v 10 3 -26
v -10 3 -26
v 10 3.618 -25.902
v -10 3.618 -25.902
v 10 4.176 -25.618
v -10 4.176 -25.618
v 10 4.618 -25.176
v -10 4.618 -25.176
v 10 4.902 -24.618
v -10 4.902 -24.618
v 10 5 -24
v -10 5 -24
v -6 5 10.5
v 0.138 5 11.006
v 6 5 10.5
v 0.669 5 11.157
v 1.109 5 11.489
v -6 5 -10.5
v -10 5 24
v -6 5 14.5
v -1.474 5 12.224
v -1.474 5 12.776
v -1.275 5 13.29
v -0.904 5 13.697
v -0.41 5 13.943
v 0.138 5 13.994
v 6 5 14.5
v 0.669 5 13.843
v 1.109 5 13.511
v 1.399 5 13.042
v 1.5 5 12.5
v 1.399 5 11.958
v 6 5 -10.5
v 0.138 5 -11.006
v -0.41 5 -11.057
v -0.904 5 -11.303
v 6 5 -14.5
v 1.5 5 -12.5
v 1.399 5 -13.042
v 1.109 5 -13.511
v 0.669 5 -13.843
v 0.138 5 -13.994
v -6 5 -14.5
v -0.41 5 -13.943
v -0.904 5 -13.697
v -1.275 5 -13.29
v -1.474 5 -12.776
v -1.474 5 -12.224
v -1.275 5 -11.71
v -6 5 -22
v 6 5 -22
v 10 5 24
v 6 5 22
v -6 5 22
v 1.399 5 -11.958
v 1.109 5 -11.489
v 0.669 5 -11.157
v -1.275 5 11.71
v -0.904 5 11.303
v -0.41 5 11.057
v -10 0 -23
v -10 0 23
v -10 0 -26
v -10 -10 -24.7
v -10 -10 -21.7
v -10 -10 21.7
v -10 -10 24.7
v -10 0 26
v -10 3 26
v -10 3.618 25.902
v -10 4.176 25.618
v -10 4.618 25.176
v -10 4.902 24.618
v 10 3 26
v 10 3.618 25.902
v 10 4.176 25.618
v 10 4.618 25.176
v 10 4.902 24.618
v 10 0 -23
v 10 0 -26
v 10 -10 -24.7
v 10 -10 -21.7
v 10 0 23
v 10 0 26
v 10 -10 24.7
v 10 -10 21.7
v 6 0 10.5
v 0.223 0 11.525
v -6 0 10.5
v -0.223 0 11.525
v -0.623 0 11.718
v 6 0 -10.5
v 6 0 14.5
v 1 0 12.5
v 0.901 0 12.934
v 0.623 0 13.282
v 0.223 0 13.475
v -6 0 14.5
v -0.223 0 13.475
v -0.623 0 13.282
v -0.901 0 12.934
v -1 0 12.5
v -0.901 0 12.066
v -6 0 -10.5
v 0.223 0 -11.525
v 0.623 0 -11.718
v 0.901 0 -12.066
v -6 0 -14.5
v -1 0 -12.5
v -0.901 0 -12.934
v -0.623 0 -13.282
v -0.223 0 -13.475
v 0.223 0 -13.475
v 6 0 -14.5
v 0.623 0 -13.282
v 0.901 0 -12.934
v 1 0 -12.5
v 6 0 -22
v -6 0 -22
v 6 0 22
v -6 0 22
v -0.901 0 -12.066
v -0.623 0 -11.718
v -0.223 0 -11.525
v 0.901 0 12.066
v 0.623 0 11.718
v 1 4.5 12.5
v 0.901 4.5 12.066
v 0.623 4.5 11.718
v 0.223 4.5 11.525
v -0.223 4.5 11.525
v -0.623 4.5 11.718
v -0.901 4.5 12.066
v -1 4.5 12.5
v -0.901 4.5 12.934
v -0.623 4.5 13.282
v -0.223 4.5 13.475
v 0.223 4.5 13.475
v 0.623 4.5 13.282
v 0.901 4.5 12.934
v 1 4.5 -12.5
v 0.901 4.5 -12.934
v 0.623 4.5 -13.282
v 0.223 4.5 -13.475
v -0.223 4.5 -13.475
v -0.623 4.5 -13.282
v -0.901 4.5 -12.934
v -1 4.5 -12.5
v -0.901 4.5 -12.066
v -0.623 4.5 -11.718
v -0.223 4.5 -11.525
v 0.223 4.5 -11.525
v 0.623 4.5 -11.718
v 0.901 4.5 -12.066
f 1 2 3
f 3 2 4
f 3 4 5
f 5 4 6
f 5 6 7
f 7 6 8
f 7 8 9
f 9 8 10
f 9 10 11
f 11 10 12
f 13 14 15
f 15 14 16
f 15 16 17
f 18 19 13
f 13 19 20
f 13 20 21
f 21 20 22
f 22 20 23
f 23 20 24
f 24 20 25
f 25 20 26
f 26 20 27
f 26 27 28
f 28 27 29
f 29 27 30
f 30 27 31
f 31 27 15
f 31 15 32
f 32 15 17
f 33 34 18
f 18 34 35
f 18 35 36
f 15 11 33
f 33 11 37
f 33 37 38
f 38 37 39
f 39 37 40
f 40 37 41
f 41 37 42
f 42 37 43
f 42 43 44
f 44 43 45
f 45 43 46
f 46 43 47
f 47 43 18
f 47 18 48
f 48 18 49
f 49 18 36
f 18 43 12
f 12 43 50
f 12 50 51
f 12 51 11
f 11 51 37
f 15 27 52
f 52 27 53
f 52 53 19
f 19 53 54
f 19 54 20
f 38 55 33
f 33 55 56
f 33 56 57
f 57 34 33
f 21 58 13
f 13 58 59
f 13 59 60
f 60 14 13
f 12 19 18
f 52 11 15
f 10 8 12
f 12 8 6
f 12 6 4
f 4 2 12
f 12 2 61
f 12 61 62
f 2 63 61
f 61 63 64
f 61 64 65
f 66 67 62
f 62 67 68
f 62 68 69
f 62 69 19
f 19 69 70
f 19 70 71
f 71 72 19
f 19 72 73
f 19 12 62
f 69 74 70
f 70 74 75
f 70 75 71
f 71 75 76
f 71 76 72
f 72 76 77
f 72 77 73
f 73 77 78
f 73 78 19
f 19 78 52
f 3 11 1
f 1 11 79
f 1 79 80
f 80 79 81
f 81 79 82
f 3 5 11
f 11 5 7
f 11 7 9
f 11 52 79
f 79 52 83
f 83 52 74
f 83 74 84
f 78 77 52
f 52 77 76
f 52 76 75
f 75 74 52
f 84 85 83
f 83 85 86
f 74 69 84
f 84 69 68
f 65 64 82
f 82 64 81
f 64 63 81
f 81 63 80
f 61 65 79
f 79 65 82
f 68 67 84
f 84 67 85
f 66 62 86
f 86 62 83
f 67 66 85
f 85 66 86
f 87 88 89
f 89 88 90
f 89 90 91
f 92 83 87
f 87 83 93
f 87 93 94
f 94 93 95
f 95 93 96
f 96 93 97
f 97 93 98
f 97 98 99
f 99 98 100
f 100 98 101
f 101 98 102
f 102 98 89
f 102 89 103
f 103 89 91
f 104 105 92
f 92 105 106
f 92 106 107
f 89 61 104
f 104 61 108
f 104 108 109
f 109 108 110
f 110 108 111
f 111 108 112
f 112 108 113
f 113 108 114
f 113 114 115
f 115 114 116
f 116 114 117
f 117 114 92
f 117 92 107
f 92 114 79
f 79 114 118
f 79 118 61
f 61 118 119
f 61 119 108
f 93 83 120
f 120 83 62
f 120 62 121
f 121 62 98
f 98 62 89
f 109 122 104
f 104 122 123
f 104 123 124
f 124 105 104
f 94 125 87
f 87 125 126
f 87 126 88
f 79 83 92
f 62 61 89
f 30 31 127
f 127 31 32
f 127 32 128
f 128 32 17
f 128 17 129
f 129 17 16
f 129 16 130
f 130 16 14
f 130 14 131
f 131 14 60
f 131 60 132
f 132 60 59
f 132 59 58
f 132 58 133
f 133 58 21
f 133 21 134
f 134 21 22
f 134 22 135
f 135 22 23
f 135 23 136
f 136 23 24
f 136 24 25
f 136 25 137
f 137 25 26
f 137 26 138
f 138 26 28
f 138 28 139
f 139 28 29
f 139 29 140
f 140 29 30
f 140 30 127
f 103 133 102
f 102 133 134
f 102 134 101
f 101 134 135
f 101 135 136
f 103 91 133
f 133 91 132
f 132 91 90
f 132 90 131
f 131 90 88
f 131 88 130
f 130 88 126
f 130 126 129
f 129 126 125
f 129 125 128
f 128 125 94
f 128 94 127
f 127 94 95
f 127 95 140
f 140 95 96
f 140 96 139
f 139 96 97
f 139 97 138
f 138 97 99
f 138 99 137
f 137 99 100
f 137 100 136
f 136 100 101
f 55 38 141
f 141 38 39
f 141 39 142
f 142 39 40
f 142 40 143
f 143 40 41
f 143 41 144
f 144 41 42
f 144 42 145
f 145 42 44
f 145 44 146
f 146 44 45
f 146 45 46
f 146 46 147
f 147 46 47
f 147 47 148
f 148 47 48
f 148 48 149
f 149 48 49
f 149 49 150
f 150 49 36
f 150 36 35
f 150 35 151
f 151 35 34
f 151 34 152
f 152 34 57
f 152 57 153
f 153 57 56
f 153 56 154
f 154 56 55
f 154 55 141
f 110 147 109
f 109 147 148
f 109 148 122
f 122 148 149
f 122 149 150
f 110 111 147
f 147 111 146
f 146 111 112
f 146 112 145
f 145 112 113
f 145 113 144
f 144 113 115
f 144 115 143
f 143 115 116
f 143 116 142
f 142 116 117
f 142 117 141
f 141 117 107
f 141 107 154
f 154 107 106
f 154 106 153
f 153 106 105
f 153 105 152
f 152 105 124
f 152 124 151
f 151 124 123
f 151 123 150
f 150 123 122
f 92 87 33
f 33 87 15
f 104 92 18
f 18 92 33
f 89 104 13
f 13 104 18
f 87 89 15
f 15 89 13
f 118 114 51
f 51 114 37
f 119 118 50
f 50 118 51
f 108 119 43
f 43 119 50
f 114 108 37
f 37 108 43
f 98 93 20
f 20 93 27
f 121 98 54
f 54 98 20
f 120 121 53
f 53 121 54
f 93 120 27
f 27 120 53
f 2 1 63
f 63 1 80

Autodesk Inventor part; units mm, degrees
ref_plane "YZ Plane" through (0, 0, 0) normal (1, 0, 0) x (0, 1, 0)
ref_plane "XZ Plane" through (0, 0, 0) normal (0, 1, 0) x (-1, 0, 0)
ref_plane "XY Plane" through (0, 0, 0) normal (0, 0, 1) x (1, 0, 0)
sketch "스케치1" plane through (0, 0, 0) normal (0, 1, 0) x (-1, 0, 0)
  line L0 (10, 26) -> (-10, 26)
  line L1 (-10, 26) -> (-10, -26)
  line L2 (-10, -26) -> (10, -26)
  line L3 (10, -26) -> (10, 26)
  line L4 (10, 26) -> (-10, -26) construction
  line L5 (-10, 26) -> (10, -26) construction
  line L6 (6, 22) -> (-6, 22)
  line L7 (-6, 22) -> (-6, -22)
  line L8 (-6, -22) -> (6, -22)
  line L9 (6, -22) -> (6, 22)
  line L10 (7.75, 10.5) -> (-7.75, 10.5)
  line L11 (-7.75, 10.5) -> (-7.75, -10.5) construction
  line L12 (-7.75, -10.5) -> (7.75, -10.5)
  line L13 (7.75, -10.5) -> (7.75, 10.5) construction
  line L14 (7.75, 10.5) -> (-7.75, -10.5) construction
  line L15 (-7.75, 10.5) -> (7.75, -10.5) construction
  line L16 (6, 14.5) -> (-6, 14.5)
  line L17 (0, 0) -> (3.5234, 0)
  line L18 (6, -14.5) -> (-6, -14.5)
  point P0 (0, 10.5)
  point P1 (-6, 10.5)
  point P2 (6, 10.5)
  point P3 (6, -10.5)
  point P4 (-6, -10.5)
  dimension "d0" = 20
  dimension "d1" = 52
  dimension "d2" = 4
  dimension "d3" = 15.5
  dimension "d4" = 21
  dimension "d5" = 4
extrude "돌출1" add sketch "스케치1" along normal blind 5 contours L3 L2 L1 L0 | L9 L10 L7 L16 | L9 L18 L7 L12
sketch "스케치2" plane through (0, 5, 0) normal (0, 1, 0) x (1, 0, 0)
  circle A0 centre (0, -12.5) radius 1
  line L0 (0, 0) -> (-3.3387, 0)
  line L1 (6, -10.5) -> (-6, -10.5) projected
  circle A1 centre (0, 12.5) radius 1
  dimension "d8" = 2
  dimension "d9" = 2
hole "구멍1" at (0, 5, 12.5) at (0, 5, -12.5) direction (0, -1, 0) diameter 2 end through all countersink diameter 3 countersink angle 90
sketch "스케치3" plane through (10, 0, 26) normal (1, 0, 0) x (0, 0, -1)
  line L0 (0, 0) -> (1.3, -10)
  line L1 (1.3, -10) -> (4.3, -10)
  line L2 (4.3, -10) -> (2.9721, 0.2144)
  line L3 (0, 0) -> (52, 0) projected
  line L4 (26, 0) -> (26, -7.8)
  line L5 (52, 0) -> (50.7, -10)
  line L6 (50.7, -10) -> (47.7, -10)
  line L7 (47.7, -10) -> (49.0279, 0.2144)
  point P0 (49, 0)
  point P1 (3, 0)
  dimension "d17" = 10
  dimension "d18" = 4.3
  dimension "d19" = 3
extrude "돌출2" add sketch "스케치3" against normal up to surface (20 mm away)
fillet "모깎기1" radius 2 2 edges at (0, 5, 26) (0, 5, -26)
properties part number "스텝모터 상판"
